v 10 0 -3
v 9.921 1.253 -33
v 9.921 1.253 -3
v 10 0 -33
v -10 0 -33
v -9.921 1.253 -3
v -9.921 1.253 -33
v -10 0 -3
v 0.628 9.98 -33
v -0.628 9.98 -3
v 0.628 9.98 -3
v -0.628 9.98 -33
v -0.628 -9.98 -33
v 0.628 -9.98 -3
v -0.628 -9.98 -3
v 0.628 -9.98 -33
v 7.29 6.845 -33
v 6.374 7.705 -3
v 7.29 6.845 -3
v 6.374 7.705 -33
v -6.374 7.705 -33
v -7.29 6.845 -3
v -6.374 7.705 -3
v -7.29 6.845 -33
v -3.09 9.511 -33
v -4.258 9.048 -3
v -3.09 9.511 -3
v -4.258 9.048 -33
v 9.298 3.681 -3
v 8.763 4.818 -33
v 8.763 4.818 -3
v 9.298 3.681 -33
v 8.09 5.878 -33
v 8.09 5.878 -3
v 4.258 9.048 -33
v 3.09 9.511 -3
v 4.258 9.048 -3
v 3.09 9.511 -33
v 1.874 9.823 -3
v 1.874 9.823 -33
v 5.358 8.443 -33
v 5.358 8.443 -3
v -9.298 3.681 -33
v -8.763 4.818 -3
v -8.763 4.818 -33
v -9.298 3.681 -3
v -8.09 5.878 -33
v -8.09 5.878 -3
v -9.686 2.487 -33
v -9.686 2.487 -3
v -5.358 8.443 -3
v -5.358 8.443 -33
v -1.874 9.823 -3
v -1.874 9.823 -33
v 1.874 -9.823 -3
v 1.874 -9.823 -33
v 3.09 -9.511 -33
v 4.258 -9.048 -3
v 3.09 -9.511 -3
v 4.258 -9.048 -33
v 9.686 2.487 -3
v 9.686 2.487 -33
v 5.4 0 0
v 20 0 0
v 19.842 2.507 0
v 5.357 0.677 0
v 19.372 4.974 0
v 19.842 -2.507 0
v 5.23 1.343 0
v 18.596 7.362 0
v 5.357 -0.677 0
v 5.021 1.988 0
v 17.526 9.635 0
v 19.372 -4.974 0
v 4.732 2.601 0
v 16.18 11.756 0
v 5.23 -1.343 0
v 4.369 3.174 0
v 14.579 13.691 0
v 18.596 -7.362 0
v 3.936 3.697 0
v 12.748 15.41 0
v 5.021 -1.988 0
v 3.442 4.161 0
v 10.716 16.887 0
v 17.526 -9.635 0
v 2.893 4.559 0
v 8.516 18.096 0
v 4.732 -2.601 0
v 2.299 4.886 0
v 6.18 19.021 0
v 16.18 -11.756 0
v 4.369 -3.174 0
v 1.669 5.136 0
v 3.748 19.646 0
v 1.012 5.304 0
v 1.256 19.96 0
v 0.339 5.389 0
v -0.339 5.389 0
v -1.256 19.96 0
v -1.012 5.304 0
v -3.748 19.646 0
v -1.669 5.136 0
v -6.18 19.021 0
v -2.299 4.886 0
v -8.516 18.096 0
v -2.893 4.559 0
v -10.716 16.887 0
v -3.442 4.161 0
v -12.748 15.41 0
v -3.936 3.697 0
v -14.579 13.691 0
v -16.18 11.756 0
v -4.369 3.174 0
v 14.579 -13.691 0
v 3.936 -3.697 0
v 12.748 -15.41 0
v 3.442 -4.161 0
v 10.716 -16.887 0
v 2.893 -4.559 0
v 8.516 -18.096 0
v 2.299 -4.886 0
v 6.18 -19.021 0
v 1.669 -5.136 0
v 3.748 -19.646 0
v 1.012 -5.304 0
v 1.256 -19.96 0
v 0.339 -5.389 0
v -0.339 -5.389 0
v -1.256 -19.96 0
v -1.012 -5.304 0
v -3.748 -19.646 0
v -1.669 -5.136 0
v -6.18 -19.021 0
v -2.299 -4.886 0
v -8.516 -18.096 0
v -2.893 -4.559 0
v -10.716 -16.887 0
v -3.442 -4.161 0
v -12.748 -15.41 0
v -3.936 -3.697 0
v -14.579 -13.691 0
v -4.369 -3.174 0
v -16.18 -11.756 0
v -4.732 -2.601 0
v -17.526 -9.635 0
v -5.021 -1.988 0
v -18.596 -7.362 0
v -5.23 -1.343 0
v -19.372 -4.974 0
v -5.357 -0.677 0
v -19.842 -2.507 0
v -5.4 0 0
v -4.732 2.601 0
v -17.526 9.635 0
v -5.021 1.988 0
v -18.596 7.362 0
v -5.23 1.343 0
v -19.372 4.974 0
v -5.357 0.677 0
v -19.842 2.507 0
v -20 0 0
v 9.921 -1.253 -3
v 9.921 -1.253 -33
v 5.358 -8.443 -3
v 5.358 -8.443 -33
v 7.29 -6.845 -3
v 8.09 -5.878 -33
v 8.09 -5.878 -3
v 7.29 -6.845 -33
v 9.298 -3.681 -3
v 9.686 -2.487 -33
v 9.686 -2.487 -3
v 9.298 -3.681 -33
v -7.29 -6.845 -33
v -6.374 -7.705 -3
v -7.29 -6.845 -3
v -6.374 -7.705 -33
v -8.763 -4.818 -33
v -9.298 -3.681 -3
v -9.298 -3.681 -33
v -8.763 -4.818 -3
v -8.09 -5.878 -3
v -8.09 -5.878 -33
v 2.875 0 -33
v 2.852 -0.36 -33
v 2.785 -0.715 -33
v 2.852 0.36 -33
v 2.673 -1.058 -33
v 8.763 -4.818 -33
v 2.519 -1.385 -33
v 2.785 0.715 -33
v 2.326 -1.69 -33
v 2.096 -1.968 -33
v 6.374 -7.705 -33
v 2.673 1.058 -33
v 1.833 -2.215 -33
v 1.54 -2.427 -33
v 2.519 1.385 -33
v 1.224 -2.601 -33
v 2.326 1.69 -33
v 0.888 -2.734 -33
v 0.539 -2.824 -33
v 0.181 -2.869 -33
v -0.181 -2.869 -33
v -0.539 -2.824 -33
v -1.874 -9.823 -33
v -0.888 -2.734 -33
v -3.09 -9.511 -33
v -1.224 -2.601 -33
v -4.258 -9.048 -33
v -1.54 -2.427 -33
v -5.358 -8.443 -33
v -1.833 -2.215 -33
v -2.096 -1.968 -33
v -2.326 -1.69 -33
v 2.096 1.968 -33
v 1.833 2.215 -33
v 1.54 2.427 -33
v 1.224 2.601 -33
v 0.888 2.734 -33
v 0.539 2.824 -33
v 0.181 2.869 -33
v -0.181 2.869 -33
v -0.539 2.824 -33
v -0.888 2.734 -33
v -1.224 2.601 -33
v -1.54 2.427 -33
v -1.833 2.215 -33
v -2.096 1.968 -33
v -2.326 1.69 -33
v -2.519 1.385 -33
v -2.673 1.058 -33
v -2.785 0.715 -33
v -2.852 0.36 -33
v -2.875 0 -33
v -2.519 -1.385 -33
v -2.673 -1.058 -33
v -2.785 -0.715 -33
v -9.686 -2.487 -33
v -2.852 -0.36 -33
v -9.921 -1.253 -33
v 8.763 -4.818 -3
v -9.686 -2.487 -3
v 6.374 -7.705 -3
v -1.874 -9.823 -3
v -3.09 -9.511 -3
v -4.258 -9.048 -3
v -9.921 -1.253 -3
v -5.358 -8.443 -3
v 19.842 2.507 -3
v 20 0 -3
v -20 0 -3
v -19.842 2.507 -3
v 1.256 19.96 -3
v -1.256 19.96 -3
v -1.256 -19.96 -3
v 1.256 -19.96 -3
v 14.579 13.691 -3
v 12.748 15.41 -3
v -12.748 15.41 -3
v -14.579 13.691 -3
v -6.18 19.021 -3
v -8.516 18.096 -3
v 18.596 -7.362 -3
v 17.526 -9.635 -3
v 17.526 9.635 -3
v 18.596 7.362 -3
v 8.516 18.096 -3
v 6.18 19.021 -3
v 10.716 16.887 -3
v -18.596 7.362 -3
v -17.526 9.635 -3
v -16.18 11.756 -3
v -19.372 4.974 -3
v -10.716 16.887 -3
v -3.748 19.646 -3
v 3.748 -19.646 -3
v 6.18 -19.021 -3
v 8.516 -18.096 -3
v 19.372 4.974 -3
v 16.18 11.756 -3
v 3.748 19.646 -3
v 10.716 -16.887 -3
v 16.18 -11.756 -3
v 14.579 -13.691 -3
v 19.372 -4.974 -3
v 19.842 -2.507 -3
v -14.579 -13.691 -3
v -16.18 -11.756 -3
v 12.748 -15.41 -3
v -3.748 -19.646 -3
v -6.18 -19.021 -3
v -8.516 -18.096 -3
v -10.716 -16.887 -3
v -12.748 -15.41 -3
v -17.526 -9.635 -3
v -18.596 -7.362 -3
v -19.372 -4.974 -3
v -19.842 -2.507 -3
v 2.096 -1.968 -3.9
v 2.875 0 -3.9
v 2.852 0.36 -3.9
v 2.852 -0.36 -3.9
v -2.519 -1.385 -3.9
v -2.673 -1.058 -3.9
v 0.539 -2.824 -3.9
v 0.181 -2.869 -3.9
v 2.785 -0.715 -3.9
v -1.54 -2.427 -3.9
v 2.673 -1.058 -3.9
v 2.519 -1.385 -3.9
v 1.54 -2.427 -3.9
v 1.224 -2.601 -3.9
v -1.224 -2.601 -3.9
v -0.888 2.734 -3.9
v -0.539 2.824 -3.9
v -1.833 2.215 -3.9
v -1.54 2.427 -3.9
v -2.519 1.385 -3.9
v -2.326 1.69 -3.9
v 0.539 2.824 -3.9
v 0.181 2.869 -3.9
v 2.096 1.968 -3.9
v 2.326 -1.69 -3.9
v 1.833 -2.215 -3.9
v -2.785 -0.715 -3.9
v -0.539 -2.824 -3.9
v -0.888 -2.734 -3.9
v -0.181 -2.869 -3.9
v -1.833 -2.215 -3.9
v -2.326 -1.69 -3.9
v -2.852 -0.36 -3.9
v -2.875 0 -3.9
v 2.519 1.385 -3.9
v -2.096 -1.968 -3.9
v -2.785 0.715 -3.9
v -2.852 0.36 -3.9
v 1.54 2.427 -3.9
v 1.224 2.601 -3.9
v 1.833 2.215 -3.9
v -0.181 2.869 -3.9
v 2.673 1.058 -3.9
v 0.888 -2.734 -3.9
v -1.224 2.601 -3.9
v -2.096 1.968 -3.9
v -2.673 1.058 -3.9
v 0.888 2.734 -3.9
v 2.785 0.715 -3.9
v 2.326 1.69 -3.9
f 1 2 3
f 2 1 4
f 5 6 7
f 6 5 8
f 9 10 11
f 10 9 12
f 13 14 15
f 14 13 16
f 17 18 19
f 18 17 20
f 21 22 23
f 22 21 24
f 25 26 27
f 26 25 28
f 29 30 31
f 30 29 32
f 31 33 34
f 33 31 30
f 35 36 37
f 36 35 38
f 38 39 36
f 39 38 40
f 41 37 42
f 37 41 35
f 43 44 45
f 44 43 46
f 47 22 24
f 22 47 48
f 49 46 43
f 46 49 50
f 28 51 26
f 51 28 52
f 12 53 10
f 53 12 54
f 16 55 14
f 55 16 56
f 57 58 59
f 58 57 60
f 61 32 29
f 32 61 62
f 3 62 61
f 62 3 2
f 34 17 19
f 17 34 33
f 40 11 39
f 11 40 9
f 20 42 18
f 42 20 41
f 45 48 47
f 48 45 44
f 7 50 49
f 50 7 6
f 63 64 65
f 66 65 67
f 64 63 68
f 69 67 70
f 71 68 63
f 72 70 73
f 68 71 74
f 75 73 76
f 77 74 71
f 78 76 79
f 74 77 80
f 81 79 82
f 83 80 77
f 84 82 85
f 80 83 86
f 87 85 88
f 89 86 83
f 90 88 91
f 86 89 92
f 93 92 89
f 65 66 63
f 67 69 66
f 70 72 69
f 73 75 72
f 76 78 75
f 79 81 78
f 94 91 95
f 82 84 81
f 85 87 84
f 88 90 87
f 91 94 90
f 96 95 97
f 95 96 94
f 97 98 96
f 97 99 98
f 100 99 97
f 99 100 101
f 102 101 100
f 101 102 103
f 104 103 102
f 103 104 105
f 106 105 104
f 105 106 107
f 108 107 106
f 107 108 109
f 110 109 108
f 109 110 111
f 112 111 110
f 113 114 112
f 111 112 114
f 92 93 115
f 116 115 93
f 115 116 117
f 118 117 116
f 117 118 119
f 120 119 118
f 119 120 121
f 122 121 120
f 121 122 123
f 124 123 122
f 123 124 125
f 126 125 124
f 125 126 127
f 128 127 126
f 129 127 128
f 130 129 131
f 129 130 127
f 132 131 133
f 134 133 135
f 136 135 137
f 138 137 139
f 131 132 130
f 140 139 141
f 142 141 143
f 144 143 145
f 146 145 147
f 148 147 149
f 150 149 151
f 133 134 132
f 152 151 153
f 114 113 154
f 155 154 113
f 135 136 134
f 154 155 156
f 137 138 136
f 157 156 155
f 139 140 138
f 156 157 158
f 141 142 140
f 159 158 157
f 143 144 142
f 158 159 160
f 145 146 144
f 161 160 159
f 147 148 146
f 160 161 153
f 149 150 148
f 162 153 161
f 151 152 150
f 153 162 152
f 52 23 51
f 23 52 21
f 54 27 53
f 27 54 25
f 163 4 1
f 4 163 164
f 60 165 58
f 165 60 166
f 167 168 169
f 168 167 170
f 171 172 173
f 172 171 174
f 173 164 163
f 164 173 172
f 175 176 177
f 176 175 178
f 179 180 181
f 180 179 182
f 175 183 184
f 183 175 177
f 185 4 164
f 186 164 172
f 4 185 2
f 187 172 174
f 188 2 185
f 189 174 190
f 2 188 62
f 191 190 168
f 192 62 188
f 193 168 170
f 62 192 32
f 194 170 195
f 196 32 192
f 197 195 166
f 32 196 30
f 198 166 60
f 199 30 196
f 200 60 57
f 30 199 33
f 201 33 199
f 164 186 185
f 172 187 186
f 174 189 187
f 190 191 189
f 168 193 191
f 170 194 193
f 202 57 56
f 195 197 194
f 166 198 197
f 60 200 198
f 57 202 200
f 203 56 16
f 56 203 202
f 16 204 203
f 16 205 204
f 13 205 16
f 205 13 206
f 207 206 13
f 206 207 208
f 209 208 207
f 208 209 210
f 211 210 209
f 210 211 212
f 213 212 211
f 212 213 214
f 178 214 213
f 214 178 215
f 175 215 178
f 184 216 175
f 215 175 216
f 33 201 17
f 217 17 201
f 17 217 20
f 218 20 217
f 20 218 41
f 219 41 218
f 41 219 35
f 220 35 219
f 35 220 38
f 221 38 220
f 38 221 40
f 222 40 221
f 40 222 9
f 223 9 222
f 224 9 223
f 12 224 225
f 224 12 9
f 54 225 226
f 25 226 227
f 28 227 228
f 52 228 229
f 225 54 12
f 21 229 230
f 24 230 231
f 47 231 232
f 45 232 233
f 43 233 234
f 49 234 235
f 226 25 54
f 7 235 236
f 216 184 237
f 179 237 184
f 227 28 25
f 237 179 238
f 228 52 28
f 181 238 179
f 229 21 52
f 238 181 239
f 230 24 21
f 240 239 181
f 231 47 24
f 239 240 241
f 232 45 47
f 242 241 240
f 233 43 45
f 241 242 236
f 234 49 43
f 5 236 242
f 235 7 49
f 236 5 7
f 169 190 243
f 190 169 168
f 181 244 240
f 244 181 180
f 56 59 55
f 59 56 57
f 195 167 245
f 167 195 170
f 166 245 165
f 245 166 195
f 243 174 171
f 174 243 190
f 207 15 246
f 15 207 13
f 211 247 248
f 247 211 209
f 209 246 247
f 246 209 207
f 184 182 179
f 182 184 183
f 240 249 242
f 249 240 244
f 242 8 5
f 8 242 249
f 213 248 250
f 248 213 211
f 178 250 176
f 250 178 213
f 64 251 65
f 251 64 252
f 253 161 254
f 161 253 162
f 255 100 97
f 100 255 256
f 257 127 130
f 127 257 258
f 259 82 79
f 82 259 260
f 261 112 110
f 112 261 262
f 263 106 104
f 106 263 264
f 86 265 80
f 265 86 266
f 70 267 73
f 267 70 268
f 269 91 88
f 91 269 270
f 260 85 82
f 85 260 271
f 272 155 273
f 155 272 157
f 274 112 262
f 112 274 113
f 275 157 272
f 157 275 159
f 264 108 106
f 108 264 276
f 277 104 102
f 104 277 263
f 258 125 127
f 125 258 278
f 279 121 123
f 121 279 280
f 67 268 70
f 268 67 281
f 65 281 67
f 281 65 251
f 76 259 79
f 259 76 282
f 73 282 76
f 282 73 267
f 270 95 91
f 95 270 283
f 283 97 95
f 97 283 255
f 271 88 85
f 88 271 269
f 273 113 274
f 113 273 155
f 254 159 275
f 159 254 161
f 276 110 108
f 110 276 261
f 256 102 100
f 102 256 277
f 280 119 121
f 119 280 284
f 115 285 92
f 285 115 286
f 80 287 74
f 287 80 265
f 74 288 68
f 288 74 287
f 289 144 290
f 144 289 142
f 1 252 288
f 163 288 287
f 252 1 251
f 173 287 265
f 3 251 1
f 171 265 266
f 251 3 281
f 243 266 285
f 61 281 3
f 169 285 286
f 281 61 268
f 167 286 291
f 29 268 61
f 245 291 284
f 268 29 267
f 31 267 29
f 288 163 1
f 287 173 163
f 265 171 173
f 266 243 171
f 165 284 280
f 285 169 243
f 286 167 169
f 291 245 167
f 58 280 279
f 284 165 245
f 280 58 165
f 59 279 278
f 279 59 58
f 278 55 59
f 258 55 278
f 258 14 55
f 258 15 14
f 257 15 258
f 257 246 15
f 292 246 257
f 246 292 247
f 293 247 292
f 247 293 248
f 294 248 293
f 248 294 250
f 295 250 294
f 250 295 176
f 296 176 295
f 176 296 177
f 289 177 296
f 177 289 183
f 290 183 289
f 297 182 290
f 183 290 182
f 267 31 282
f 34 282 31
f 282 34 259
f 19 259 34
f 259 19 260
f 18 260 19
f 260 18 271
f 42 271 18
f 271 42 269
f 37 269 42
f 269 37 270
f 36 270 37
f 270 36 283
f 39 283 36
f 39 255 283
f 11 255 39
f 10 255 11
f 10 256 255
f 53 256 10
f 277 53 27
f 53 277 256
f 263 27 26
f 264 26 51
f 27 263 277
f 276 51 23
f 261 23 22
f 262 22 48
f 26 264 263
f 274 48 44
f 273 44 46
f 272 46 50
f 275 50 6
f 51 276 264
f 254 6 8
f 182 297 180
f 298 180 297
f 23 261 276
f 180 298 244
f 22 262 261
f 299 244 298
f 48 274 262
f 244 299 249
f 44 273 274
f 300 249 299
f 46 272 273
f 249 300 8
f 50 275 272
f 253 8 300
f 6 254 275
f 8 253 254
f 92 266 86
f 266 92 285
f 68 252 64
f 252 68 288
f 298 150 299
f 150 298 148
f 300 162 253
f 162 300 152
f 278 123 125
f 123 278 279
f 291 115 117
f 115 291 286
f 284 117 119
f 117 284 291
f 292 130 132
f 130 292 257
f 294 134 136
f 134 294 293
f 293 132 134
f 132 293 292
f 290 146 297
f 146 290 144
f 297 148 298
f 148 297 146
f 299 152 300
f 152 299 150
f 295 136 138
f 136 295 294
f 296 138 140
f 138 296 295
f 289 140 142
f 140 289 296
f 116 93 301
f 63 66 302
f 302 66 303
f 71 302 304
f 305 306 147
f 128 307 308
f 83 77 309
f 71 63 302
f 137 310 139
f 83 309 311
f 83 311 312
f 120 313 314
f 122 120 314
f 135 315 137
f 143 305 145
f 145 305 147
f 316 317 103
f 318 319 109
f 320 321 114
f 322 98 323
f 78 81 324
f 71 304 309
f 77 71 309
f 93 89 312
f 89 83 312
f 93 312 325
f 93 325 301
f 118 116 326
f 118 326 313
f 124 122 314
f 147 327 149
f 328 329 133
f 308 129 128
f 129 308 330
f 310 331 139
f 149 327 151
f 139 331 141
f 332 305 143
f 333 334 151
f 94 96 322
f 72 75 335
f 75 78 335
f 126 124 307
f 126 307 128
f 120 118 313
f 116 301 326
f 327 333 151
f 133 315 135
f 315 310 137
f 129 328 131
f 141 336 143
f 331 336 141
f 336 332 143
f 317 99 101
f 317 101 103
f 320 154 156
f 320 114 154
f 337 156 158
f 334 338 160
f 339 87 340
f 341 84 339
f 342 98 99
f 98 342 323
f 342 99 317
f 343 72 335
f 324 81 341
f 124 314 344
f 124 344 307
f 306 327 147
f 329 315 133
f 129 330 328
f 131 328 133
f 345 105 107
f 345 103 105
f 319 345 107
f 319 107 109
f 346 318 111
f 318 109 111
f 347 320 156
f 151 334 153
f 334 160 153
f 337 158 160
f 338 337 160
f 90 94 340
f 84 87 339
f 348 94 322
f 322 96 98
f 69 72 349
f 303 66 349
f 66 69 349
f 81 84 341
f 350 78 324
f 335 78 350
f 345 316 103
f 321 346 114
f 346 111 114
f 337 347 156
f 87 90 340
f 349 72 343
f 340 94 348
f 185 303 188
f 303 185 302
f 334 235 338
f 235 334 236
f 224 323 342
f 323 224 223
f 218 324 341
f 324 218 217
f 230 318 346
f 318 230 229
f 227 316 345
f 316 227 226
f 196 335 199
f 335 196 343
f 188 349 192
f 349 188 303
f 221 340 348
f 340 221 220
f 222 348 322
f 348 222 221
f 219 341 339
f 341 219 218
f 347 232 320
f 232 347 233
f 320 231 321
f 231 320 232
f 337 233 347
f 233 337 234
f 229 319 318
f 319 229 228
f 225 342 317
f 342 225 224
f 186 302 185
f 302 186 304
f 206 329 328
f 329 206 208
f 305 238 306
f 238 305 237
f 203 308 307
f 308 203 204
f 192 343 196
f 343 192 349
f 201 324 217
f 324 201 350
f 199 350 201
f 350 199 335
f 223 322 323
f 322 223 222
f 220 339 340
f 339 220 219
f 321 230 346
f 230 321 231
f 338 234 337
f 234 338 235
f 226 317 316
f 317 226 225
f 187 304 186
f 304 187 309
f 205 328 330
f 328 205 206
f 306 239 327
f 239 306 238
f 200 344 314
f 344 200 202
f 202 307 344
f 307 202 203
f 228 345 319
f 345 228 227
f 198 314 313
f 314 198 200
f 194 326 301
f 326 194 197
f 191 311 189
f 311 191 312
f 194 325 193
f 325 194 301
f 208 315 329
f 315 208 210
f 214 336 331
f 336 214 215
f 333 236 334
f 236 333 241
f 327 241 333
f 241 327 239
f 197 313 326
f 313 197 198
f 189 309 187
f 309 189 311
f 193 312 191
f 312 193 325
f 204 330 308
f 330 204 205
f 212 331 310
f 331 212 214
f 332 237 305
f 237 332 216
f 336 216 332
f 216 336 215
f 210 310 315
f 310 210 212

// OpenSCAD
$fn = 50;


difference() {
	union() {
		translate(v = [0, 0, -33.0000000000]) {
			cylinder(h = 33, r = 10.0000000000);
		}
		translate(v = [0, 0, -3.0000000000]) {
			cylinder(h = 3, r = 20.0000000000);
		}
	}
	union() {
		translate(v = [0, 0, 0]) {
			rotate(a = [0, 0, 0]) {
				difference() {
					union() {
						#translate(v = [0, 0, -33.0000000000]) {
							cylinder(h = 33, r = 2.6000000000);
						}
						#translate(v = [0, 0, -3.9000000000]) {
							cylinder(h = 3.9000000000, r1 = 2.8750000000, r2 = 5.4000000000);
						}
						#translate(v = [0, 0, -33.0000000000]) {
							cylinder(h = 33, r = 2.8750000000);
						}
						#translate(v = [0, 0, -33.0000000000]) {
							cylinder(h = 33, r = 2.6000000000);
						}
					}
					union();
				}
			}
		}
	}
}
